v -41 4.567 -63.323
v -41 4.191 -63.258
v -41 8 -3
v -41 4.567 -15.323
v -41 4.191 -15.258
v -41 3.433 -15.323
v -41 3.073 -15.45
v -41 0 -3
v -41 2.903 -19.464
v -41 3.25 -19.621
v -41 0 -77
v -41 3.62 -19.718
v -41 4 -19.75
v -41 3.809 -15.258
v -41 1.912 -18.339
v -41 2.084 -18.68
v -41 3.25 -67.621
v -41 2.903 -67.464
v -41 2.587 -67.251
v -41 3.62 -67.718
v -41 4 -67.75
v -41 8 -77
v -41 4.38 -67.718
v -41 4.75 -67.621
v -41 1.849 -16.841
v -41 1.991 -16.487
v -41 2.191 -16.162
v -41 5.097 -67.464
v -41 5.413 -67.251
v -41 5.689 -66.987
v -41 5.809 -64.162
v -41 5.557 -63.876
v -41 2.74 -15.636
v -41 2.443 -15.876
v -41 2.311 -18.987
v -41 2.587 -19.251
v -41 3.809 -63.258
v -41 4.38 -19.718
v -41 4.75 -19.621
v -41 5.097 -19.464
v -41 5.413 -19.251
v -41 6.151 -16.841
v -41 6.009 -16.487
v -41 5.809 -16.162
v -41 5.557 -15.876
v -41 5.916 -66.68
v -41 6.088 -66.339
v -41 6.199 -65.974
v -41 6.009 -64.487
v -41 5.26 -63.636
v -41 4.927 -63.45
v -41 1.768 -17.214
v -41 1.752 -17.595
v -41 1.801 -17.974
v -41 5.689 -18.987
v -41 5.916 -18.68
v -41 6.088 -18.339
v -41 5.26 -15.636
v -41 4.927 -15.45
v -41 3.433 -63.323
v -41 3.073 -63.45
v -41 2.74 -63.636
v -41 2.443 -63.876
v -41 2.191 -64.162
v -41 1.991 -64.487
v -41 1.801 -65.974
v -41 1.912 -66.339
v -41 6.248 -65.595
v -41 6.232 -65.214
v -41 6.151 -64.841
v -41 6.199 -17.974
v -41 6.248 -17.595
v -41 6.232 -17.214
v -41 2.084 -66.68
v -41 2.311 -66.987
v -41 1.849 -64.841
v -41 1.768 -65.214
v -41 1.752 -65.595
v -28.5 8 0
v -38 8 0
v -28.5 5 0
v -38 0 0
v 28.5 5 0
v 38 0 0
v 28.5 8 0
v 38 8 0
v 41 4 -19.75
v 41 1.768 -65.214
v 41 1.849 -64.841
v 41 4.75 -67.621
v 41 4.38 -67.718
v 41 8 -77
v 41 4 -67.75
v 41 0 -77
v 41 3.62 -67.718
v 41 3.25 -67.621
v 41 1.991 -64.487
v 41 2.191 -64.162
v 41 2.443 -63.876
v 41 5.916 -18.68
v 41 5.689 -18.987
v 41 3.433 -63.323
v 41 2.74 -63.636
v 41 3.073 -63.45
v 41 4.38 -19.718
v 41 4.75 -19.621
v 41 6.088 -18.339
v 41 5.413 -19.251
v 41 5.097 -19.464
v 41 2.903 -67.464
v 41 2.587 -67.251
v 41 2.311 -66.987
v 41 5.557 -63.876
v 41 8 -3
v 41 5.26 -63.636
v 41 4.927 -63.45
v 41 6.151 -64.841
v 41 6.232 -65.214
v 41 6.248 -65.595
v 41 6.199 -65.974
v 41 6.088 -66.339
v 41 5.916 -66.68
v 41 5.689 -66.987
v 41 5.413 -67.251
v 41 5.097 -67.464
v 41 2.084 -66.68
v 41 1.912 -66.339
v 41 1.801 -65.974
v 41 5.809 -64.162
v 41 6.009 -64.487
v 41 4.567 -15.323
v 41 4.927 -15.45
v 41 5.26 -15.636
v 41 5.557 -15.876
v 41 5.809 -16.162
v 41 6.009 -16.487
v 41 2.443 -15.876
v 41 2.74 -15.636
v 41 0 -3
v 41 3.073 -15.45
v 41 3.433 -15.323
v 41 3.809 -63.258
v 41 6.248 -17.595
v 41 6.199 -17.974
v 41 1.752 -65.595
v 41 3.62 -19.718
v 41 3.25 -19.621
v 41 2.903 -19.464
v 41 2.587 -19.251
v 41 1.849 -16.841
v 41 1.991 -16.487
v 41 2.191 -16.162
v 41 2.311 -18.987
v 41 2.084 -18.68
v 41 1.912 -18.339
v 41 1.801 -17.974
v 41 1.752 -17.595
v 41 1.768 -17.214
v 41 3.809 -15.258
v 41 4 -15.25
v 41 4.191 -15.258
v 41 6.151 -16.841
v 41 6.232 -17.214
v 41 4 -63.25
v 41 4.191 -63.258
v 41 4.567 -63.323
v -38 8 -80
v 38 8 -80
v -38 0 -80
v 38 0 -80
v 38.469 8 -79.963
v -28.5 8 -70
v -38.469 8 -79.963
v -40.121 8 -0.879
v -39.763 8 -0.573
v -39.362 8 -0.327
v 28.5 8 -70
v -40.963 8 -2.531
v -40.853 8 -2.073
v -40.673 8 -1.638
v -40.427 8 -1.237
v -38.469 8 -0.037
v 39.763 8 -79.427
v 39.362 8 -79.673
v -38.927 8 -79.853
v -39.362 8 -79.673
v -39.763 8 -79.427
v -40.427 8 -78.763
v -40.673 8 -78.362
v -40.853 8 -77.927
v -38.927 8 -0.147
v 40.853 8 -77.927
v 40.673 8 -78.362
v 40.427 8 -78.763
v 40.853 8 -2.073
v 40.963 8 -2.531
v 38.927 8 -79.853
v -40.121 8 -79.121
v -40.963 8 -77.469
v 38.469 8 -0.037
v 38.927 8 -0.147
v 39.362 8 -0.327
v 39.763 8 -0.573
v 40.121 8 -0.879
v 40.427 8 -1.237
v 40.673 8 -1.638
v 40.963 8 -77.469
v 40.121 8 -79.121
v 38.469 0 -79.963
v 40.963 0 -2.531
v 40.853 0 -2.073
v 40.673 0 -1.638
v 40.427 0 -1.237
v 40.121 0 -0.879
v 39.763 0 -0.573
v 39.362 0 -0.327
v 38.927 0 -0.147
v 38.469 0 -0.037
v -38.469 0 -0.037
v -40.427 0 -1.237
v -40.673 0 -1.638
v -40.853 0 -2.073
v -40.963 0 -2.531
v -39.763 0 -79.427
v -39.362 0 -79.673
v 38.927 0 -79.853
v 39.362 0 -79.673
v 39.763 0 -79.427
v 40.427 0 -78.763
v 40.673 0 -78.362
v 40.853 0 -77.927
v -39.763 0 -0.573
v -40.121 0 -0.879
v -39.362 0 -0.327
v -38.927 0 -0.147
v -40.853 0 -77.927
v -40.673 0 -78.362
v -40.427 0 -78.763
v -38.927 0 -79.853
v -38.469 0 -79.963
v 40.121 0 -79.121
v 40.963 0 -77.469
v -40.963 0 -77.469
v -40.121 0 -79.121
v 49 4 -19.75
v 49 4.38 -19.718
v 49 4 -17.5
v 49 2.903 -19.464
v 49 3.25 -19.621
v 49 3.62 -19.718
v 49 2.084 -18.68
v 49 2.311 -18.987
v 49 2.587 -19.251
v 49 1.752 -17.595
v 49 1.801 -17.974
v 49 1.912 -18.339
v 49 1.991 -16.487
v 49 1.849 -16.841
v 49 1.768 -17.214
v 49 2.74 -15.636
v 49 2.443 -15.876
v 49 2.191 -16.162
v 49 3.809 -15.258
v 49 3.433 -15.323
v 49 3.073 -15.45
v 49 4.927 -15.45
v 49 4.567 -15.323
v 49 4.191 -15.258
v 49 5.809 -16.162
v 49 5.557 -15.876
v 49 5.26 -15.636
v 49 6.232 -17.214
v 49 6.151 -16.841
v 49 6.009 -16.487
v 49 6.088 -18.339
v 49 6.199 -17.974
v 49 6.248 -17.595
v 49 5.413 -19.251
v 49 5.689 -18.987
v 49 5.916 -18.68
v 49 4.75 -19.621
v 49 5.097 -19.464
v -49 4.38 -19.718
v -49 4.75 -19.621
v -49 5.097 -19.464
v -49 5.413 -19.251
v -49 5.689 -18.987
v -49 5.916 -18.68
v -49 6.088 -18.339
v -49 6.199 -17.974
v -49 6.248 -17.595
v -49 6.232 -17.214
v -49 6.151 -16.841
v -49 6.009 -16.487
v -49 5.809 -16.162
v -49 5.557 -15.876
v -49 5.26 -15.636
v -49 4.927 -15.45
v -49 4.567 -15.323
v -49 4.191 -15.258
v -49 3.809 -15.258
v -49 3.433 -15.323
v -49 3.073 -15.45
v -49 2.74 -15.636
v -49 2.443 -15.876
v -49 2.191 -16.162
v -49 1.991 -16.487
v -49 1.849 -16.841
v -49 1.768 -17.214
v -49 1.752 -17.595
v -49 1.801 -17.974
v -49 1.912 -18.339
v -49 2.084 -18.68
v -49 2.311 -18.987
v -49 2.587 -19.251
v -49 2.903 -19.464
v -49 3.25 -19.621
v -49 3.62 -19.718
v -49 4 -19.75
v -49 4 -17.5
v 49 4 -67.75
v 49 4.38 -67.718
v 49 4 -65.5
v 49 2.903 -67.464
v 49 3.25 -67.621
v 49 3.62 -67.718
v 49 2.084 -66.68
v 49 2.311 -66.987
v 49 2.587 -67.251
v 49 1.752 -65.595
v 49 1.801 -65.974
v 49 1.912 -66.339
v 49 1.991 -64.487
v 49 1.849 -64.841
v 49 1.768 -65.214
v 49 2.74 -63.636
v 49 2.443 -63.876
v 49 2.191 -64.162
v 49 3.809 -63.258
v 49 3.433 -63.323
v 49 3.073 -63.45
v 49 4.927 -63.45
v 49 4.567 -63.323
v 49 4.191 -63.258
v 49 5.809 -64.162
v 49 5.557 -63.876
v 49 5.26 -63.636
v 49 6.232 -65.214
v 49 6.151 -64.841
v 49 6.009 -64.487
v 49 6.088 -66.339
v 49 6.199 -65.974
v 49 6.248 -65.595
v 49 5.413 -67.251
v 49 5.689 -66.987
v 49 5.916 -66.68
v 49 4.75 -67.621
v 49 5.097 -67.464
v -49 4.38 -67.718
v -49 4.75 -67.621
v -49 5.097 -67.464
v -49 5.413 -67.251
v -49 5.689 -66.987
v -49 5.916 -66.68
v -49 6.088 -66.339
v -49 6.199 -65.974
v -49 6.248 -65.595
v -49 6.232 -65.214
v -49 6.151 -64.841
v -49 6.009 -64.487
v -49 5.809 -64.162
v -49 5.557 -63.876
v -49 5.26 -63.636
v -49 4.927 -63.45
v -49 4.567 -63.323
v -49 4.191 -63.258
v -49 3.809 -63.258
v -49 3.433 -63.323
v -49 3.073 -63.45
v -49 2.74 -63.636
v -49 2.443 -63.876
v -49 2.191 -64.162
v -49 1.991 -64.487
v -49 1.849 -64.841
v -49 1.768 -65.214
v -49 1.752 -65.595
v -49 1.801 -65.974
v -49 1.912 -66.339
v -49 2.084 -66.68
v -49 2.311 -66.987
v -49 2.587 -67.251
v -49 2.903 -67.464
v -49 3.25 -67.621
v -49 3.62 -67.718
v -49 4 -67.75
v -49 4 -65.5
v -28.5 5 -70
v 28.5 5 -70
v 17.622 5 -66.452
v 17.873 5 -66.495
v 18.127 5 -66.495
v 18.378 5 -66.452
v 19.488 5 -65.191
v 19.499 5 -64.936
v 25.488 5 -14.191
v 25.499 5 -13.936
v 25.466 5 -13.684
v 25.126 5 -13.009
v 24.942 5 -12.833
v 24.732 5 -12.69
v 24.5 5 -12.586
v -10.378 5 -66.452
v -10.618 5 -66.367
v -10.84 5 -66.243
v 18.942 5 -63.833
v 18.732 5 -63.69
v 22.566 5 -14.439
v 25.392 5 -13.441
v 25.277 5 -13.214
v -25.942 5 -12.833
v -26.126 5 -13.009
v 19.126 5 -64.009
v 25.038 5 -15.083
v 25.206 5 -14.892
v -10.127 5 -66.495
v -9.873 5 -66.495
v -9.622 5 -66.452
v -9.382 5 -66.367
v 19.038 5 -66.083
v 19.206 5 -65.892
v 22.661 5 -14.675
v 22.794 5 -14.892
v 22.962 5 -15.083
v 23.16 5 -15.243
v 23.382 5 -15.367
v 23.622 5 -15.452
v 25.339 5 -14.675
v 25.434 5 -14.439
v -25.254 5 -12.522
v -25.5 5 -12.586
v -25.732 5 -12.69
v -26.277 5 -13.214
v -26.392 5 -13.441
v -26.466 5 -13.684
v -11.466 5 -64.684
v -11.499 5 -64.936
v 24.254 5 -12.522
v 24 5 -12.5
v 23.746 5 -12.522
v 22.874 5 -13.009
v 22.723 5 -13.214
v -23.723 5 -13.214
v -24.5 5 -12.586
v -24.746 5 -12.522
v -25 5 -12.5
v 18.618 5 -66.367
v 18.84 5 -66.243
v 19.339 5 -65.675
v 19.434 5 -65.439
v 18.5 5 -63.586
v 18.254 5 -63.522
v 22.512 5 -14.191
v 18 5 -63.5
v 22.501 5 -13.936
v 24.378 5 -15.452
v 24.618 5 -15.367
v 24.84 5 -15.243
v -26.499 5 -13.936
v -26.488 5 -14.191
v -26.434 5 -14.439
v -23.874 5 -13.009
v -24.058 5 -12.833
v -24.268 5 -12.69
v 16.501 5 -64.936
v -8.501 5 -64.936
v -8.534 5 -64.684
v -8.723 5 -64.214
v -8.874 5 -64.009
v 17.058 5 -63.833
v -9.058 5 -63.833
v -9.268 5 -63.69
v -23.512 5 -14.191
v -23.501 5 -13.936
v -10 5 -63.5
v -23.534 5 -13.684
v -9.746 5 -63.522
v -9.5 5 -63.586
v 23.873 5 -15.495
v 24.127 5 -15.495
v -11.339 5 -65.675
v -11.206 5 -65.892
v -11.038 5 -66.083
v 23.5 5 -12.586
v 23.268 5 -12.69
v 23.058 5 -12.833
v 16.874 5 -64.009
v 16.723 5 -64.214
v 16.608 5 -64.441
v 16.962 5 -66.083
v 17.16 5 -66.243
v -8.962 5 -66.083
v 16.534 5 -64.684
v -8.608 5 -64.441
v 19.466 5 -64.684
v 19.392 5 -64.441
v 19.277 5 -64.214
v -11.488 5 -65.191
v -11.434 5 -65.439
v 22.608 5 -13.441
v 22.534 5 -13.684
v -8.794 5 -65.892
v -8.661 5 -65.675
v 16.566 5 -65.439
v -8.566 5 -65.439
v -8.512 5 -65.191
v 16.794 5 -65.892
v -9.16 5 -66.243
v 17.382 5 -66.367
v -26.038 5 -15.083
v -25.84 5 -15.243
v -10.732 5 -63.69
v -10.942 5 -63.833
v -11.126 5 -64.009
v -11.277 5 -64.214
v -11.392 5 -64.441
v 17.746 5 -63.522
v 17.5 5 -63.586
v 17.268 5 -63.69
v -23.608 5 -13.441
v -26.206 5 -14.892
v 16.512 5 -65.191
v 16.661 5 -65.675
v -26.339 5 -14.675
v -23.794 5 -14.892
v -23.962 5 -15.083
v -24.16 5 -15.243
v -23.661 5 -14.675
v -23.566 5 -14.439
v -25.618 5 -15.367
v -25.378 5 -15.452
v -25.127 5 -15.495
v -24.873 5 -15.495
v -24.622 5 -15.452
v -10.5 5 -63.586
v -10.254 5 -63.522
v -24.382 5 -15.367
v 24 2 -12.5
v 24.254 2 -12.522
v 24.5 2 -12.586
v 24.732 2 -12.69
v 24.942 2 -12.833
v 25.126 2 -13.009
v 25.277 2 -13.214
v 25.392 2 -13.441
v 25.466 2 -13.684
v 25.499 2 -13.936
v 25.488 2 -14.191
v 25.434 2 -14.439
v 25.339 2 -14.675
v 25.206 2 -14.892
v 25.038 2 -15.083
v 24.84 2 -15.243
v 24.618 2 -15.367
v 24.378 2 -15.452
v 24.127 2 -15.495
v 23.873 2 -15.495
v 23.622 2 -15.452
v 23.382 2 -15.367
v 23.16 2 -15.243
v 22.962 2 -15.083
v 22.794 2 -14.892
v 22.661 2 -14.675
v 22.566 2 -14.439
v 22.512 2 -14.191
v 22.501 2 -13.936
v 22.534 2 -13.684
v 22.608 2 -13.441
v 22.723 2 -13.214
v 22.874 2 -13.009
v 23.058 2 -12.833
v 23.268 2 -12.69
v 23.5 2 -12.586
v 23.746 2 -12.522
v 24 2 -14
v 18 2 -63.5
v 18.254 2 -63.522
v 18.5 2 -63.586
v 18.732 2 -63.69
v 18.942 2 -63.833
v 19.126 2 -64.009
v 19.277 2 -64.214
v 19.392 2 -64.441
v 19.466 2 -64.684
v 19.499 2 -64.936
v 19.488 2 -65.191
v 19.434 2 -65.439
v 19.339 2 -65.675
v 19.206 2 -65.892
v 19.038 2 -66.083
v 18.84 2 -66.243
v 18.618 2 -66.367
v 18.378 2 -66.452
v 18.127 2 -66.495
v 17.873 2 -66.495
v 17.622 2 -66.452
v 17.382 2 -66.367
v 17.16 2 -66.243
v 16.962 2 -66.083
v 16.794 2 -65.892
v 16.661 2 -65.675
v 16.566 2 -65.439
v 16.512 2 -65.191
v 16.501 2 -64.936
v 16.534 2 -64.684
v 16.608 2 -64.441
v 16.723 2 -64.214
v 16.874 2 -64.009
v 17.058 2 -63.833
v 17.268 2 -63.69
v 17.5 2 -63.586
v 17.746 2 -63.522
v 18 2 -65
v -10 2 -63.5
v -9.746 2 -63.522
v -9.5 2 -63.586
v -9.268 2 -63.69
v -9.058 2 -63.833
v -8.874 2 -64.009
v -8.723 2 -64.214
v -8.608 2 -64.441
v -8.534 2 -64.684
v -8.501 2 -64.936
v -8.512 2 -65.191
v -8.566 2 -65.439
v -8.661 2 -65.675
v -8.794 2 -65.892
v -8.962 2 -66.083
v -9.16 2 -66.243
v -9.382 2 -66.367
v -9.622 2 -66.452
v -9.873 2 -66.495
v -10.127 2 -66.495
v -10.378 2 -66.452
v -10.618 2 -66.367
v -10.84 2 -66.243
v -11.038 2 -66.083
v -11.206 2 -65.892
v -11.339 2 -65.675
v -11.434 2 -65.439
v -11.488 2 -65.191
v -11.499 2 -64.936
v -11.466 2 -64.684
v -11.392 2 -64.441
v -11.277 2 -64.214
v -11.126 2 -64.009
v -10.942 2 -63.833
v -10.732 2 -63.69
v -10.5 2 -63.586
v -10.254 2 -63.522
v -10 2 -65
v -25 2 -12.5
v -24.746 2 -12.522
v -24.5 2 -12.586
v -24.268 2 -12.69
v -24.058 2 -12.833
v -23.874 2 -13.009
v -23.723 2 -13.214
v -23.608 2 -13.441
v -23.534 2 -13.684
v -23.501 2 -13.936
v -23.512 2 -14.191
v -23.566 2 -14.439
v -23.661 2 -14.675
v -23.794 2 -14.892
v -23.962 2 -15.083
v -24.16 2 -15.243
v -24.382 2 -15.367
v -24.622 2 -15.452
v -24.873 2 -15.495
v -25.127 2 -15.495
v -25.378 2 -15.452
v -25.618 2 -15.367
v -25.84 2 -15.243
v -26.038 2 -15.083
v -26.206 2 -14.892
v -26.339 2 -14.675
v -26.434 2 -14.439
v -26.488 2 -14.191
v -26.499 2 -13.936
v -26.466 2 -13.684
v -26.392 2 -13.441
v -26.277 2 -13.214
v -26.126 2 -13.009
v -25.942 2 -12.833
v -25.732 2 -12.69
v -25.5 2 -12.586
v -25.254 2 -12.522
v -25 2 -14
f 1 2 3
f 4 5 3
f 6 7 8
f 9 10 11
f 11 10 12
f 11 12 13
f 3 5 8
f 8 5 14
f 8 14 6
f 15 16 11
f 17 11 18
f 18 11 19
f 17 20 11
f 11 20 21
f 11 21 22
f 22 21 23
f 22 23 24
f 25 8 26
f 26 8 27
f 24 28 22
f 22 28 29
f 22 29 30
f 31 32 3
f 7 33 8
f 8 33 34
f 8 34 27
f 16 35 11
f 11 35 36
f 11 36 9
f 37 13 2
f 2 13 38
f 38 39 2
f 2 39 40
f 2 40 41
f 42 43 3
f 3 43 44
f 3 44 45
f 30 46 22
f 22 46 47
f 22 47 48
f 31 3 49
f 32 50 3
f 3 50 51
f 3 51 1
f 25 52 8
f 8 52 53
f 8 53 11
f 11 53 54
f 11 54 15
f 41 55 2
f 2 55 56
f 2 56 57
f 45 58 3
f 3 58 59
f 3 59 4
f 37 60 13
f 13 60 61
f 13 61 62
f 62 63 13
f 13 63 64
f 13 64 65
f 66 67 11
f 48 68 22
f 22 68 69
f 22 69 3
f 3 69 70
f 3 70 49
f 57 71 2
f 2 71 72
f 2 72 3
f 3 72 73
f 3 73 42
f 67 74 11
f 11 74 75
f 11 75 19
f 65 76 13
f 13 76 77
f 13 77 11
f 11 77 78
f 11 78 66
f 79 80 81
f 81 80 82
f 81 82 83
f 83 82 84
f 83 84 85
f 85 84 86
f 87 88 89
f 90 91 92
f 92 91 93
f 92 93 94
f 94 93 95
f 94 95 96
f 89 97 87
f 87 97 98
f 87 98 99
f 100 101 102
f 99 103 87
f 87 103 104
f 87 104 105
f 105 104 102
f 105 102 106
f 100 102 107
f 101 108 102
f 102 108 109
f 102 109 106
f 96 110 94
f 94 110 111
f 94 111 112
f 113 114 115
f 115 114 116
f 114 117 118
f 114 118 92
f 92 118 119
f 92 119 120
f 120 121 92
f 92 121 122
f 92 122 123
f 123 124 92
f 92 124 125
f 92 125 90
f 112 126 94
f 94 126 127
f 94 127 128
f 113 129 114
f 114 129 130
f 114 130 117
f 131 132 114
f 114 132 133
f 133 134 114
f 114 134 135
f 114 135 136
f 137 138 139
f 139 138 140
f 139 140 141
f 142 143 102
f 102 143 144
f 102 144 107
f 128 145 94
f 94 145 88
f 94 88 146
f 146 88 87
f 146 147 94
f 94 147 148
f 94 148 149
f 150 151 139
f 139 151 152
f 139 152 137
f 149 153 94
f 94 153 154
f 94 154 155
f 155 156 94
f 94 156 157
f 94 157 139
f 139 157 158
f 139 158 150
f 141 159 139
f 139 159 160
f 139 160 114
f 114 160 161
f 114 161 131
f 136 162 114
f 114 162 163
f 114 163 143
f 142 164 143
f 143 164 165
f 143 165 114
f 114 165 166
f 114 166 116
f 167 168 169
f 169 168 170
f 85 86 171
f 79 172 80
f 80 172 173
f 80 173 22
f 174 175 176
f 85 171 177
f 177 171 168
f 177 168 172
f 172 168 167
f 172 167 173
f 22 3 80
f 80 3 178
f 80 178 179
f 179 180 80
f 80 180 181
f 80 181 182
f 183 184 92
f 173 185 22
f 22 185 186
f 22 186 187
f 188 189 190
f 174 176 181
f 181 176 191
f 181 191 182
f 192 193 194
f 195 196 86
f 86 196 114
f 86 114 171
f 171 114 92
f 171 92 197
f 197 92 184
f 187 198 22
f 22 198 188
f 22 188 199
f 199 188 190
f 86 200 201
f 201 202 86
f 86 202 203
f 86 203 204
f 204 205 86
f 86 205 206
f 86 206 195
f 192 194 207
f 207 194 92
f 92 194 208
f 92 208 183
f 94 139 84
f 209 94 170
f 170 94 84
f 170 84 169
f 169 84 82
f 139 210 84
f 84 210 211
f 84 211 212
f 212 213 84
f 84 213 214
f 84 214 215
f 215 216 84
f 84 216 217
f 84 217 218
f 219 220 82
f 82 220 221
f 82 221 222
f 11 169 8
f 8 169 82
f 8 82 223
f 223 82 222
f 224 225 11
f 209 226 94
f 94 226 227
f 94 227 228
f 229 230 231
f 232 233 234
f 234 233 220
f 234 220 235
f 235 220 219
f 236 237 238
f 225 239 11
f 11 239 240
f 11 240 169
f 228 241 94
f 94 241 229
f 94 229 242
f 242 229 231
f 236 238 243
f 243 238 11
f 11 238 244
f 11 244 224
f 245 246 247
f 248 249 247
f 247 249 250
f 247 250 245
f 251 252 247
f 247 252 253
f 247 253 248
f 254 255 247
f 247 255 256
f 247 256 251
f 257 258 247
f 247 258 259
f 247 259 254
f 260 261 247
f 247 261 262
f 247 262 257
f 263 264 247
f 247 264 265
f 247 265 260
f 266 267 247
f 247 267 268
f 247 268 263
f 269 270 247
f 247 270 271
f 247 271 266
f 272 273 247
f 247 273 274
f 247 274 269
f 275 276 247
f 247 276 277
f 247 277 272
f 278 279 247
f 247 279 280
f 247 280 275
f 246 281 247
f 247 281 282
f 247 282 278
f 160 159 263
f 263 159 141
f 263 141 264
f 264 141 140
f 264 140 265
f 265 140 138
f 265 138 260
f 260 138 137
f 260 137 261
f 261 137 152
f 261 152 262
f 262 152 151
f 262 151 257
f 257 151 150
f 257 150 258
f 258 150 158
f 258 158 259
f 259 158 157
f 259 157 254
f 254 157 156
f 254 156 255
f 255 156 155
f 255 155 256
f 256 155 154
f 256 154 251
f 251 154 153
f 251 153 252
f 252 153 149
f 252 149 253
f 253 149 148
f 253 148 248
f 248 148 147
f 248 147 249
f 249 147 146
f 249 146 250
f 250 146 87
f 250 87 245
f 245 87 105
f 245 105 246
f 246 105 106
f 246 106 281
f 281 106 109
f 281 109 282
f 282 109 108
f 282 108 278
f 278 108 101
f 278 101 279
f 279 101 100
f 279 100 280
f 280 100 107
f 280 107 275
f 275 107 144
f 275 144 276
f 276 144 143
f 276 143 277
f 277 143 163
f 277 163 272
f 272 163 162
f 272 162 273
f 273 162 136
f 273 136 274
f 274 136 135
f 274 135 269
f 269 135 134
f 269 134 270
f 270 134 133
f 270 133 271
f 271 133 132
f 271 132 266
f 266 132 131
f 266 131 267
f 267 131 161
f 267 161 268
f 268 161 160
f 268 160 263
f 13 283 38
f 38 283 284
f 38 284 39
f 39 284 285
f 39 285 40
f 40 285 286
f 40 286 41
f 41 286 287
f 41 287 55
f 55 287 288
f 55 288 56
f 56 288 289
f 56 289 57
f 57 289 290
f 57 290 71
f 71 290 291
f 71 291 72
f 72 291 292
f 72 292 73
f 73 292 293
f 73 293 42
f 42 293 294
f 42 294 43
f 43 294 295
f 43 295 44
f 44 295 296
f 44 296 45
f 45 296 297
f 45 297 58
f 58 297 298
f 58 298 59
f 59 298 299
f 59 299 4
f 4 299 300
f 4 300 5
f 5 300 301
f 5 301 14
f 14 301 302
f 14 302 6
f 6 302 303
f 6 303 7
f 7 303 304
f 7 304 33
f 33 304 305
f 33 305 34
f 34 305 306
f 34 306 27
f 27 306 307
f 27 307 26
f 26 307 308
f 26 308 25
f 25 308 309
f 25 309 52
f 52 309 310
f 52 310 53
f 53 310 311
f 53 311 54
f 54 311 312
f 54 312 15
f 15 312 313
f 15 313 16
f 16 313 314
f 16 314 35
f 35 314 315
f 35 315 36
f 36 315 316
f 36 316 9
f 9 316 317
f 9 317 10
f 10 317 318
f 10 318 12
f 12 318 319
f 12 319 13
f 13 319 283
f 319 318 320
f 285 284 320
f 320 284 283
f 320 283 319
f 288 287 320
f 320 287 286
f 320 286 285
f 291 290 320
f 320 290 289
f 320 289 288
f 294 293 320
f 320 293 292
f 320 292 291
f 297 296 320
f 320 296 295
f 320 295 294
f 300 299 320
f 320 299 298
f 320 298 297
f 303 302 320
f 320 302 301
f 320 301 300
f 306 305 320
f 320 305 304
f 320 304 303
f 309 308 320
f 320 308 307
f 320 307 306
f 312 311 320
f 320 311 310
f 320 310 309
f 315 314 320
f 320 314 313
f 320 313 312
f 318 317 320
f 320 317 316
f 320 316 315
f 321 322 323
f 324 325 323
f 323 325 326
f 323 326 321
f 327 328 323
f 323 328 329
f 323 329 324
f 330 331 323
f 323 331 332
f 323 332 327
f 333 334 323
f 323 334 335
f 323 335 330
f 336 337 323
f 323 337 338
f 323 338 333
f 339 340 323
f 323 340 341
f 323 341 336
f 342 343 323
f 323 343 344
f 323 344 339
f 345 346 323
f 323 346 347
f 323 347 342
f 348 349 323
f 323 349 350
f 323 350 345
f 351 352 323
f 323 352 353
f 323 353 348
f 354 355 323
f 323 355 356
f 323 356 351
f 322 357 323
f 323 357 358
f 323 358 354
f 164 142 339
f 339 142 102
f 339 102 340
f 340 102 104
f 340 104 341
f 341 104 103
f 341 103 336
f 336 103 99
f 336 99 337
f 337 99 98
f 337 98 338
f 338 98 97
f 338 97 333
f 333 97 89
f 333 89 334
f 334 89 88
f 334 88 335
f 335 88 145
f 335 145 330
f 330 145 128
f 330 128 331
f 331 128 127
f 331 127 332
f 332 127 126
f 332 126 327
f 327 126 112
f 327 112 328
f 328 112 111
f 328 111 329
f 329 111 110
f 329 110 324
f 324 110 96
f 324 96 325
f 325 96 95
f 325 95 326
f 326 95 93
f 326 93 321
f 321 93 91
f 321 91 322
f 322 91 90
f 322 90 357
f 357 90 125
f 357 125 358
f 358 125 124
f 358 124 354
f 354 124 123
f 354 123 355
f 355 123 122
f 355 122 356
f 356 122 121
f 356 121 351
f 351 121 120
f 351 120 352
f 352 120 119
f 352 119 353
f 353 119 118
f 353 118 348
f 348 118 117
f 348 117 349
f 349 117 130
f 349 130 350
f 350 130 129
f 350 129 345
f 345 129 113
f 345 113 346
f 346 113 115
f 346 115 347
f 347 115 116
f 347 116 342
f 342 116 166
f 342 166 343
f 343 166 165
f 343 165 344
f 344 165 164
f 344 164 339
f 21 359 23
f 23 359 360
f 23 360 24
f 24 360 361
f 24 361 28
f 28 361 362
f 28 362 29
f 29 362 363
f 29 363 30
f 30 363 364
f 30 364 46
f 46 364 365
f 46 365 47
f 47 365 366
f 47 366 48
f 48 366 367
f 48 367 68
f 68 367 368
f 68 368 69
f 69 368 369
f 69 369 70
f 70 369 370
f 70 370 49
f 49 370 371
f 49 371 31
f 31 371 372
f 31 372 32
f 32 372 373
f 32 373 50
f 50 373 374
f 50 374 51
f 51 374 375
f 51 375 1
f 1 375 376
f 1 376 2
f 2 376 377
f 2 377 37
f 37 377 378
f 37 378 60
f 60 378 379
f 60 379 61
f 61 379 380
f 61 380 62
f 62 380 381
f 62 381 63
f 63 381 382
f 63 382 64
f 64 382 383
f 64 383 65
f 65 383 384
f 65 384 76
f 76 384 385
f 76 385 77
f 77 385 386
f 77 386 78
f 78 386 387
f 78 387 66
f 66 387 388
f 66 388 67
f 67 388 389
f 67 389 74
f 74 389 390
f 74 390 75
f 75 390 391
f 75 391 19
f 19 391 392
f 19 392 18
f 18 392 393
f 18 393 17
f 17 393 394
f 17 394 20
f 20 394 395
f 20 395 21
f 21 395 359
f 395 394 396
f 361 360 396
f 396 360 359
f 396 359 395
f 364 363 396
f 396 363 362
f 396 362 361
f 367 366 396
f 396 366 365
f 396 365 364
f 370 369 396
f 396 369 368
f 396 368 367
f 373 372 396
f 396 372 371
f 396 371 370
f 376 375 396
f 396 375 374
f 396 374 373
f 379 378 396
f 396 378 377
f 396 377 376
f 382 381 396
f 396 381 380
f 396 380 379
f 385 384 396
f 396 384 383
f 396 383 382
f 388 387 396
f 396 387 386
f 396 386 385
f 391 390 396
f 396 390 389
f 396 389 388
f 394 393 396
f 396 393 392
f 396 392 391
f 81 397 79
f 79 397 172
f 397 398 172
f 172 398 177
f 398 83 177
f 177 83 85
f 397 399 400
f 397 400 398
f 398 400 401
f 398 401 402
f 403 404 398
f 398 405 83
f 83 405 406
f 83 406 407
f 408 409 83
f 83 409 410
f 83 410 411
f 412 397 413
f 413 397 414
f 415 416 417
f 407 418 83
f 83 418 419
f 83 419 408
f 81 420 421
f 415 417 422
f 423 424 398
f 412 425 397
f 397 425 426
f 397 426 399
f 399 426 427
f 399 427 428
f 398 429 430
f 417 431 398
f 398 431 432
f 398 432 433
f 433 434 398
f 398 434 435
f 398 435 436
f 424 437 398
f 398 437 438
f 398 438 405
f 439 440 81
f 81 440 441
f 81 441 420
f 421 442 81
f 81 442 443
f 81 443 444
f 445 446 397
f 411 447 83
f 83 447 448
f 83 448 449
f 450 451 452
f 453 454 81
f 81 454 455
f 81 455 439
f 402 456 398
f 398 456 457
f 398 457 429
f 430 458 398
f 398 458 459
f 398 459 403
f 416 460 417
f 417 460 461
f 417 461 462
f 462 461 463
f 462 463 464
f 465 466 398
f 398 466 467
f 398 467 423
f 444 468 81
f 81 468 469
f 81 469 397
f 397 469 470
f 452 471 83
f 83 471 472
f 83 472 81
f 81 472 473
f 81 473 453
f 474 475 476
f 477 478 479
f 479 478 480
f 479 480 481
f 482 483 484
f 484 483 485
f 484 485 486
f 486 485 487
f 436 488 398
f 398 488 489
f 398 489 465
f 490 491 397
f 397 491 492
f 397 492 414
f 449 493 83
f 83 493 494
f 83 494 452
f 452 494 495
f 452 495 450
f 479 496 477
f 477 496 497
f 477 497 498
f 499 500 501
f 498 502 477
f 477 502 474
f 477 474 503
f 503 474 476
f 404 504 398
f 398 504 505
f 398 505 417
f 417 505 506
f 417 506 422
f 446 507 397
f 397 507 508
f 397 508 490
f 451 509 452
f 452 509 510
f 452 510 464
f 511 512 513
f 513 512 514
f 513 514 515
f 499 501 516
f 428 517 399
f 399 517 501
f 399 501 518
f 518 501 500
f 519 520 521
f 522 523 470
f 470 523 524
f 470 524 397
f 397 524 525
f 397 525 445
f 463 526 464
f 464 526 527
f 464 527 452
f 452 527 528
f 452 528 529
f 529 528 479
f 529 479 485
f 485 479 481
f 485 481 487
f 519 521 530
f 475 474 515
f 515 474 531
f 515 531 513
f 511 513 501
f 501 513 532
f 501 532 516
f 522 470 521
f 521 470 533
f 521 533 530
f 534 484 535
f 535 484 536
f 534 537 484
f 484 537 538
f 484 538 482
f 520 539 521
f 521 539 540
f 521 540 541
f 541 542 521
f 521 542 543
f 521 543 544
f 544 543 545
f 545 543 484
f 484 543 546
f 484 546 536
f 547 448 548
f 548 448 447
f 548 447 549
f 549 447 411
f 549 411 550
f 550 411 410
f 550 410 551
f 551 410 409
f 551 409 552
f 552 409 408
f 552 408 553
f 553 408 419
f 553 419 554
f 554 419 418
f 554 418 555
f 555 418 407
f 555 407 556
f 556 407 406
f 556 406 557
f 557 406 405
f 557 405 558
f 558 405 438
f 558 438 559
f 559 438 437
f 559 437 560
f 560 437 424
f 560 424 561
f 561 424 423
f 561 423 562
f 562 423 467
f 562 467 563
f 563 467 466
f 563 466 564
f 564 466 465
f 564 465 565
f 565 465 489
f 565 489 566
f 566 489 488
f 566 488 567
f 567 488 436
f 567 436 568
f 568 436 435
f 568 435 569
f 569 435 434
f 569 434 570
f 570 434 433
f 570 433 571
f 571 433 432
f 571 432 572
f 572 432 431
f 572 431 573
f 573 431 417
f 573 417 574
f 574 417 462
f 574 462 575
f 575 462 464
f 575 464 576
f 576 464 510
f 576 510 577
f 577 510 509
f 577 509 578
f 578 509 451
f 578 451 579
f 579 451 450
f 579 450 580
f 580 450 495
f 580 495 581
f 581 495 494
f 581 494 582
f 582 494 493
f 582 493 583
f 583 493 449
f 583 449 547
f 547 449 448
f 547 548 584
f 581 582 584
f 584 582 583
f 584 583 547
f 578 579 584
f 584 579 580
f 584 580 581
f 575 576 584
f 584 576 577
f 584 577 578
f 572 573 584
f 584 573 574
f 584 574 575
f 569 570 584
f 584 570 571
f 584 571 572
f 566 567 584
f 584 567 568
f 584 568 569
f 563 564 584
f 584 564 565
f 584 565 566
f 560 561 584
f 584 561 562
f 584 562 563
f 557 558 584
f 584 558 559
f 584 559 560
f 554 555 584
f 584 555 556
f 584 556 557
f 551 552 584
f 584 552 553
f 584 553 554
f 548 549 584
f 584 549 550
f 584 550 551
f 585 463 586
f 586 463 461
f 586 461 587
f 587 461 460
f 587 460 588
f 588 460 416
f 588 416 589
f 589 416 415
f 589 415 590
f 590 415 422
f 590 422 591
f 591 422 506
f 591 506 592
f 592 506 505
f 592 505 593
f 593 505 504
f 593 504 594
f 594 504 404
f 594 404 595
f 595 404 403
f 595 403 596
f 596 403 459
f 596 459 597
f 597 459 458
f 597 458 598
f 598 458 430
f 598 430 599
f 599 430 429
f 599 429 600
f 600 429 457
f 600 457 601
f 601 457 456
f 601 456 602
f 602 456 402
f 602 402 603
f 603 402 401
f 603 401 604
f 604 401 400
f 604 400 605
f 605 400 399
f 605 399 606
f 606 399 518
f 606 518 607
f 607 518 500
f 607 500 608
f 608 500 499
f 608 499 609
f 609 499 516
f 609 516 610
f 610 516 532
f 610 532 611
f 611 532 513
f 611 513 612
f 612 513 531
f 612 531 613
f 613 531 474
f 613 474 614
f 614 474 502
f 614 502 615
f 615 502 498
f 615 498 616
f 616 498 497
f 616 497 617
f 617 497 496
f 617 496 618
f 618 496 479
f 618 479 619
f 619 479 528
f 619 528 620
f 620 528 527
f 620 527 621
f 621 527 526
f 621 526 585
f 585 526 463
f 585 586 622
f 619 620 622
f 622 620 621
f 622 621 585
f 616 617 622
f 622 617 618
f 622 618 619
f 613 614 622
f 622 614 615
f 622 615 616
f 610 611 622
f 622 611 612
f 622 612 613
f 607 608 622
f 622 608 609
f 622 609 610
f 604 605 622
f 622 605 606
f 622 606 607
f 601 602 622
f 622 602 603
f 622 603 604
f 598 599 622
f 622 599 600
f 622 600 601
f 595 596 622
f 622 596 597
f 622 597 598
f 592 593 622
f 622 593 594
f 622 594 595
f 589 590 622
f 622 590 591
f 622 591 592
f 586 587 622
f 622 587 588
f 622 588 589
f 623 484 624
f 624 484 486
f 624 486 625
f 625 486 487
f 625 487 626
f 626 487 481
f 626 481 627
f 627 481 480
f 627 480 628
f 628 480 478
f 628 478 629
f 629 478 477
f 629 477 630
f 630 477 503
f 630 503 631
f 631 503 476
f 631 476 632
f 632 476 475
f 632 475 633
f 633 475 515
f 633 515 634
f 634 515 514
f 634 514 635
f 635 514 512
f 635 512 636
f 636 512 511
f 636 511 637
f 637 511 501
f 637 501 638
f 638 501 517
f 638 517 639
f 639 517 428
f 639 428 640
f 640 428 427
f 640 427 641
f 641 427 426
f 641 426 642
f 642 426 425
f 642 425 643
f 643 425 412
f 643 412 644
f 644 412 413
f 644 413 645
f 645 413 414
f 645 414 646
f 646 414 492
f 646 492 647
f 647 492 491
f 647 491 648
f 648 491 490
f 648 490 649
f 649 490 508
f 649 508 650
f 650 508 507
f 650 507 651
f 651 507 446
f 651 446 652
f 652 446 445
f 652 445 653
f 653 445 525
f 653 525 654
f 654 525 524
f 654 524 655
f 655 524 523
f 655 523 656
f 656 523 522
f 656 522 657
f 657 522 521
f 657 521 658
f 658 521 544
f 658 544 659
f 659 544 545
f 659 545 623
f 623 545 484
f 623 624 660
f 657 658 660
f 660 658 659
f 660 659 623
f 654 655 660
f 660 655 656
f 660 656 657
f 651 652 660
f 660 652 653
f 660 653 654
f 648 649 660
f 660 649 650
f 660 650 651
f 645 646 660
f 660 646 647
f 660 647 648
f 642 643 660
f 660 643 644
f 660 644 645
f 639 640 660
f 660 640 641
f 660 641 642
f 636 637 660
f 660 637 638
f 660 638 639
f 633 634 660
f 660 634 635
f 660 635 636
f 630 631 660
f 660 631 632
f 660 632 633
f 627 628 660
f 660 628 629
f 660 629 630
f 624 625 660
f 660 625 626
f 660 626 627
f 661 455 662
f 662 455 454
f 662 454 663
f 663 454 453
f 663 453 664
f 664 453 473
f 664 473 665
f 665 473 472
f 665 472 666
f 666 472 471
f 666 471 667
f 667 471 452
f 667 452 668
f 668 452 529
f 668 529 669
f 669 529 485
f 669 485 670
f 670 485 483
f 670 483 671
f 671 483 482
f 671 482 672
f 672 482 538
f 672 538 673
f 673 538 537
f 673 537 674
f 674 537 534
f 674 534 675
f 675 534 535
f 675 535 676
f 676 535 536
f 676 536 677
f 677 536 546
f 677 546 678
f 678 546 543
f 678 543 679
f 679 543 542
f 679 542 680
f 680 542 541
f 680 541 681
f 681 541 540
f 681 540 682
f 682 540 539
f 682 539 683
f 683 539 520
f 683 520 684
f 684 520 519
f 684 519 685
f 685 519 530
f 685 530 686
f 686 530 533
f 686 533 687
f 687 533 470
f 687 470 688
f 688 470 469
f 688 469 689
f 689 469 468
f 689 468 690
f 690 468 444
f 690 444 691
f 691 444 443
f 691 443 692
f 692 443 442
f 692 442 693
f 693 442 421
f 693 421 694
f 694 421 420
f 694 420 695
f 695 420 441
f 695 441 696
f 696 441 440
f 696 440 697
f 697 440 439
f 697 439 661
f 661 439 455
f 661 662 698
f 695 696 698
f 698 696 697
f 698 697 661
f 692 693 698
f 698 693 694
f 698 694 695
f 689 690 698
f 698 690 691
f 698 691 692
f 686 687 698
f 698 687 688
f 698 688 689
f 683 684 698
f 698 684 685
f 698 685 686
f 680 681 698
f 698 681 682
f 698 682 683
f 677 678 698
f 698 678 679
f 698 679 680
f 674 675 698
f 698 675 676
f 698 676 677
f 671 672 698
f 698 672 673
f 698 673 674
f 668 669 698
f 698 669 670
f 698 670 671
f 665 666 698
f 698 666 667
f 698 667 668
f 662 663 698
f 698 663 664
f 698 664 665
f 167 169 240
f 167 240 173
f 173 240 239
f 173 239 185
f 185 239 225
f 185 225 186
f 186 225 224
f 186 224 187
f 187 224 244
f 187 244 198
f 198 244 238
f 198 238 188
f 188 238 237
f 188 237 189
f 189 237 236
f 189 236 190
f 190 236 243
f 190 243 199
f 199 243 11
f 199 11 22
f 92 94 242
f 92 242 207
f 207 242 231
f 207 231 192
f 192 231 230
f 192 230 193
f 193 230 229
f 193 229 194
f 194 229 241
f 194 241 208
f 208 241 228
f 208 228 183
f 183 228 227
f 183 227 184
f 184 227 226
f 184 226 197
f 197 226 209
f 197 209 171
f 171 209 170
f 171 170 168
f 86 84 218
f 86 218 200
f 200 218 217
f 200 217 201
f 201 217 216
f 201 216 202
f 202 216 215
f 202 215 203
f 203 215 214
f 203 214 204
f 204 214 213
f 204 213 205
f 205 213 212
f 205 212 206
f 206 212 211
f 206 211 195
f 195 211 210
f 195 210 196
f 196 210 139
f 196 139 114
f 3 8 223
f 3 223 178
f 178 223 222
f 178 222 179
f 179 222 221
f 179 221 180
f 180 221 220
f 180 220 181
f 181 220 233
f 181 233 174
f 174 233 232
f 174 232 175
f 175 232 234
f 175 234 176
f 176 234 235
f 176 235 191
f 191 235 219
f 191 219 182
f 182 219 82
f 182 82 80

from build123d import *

# Parameters (mm, degrees)
SKETCH1_W                = 82
SKETCH1_H                = 80
BOSS_EXTRUDE1_DEPTH      = 8
BOSS_EXTRUDE2_DEPTH      = 8
BOSS_EXTRUDE2_DEPTH_BACK = 90
SKETCH2_R                = 2.25
SKETCH3_W                = 57
SKETCH3_H                = 70
CUT_EXTRUDE1_DEPTH       = 3
SKETCH4_R                = 1.5
CUT_EXTRUDE2_DEPTH       = 3
FILLET1_R                = 3


with BuildPart() as part:
    # Sketch1 → Boss-Extrude1 (new body)
    with BuildSketch(Plane(origin=(0, 0, 0), x_dir=(1, 0, 0), z_dir=(0, 1, 0))):
        with Locations((0, 40)):
            Rectangle(SKETCH1_W, SKETCH1_H)
    extrude(amount=BOSS_EXTRUDE1_DEPTH)

    # Sketch2 → Boss-Extrude2 (add, two sides: drawn at the far end of the back side and taken through both)
    with BuildSketch(Plane(origin=(41, 0, 0), x_dir=(0, 0, -1), z_dir=(1, 0, 0)).offset(-BOSS_EXTRUDE2_DEPTH_BACK)):
        with Locations((17.5, 4)):
            Circle(SKETCH2_R)
        with Locations((65.5, 4)):
            Circle(SKETCH2_R)
    extrude(amount=BOSS_EXTRUDE2_DEPTH + BOSS_EXTRUDE2_DEPTH_BACK)

    # Sketch3 → Cut-Extrude1 (cut)
    with BuildSketch(Plane(origin=(0, 8, 0), x_dir=(1, 0, 0), z_dir=(0, 1, 0))):
        with Locations((0, 35)):
            Rectangle(SKETCH3_W, SKETCH3_H)
    extrude(amount=-CUT_EXTRUDE1_DEPTH, mode=Mode.SUBTRACT)

    # Sketch4 → Cut-Extrude2 (cut)
    with BuildSketch(Plane(origin=(0, 5, 0), x_dir=(1, 0, 0), z_dir=(0, 1, 0))):
        with Locations(Location((-25, 14, 0), (0, 0, 270))):
            Circle(SKETCH4_R)
        with Locations(Location((-10, 65, 0), (0, 0, 270))):
            Circle(SKETCH4_R)
        with Locations(Location((18, 65, 0), (0, 0, 270))):
            Circle(SKETCH4_R)
        with Locations(Location((24, 14, 0), (0, 0, 270))):
            Circle(SKETCH4_R)
    extrude(amount=-CUT_EXTRUDE2_DEPTH, mode=Mode.SUBTRACT)

    # Fillet1
    fillet1_edges = [part.edges().sort_by_distance(p)[0] for p in [
        (-41, 4, -80),
        (41, 4, -80),
        (41, 4, 0),
        (-41, 4, 0),
    ]]
    fillet(fillet1_edges, radius=FILLET1_R)


solid = part.part
